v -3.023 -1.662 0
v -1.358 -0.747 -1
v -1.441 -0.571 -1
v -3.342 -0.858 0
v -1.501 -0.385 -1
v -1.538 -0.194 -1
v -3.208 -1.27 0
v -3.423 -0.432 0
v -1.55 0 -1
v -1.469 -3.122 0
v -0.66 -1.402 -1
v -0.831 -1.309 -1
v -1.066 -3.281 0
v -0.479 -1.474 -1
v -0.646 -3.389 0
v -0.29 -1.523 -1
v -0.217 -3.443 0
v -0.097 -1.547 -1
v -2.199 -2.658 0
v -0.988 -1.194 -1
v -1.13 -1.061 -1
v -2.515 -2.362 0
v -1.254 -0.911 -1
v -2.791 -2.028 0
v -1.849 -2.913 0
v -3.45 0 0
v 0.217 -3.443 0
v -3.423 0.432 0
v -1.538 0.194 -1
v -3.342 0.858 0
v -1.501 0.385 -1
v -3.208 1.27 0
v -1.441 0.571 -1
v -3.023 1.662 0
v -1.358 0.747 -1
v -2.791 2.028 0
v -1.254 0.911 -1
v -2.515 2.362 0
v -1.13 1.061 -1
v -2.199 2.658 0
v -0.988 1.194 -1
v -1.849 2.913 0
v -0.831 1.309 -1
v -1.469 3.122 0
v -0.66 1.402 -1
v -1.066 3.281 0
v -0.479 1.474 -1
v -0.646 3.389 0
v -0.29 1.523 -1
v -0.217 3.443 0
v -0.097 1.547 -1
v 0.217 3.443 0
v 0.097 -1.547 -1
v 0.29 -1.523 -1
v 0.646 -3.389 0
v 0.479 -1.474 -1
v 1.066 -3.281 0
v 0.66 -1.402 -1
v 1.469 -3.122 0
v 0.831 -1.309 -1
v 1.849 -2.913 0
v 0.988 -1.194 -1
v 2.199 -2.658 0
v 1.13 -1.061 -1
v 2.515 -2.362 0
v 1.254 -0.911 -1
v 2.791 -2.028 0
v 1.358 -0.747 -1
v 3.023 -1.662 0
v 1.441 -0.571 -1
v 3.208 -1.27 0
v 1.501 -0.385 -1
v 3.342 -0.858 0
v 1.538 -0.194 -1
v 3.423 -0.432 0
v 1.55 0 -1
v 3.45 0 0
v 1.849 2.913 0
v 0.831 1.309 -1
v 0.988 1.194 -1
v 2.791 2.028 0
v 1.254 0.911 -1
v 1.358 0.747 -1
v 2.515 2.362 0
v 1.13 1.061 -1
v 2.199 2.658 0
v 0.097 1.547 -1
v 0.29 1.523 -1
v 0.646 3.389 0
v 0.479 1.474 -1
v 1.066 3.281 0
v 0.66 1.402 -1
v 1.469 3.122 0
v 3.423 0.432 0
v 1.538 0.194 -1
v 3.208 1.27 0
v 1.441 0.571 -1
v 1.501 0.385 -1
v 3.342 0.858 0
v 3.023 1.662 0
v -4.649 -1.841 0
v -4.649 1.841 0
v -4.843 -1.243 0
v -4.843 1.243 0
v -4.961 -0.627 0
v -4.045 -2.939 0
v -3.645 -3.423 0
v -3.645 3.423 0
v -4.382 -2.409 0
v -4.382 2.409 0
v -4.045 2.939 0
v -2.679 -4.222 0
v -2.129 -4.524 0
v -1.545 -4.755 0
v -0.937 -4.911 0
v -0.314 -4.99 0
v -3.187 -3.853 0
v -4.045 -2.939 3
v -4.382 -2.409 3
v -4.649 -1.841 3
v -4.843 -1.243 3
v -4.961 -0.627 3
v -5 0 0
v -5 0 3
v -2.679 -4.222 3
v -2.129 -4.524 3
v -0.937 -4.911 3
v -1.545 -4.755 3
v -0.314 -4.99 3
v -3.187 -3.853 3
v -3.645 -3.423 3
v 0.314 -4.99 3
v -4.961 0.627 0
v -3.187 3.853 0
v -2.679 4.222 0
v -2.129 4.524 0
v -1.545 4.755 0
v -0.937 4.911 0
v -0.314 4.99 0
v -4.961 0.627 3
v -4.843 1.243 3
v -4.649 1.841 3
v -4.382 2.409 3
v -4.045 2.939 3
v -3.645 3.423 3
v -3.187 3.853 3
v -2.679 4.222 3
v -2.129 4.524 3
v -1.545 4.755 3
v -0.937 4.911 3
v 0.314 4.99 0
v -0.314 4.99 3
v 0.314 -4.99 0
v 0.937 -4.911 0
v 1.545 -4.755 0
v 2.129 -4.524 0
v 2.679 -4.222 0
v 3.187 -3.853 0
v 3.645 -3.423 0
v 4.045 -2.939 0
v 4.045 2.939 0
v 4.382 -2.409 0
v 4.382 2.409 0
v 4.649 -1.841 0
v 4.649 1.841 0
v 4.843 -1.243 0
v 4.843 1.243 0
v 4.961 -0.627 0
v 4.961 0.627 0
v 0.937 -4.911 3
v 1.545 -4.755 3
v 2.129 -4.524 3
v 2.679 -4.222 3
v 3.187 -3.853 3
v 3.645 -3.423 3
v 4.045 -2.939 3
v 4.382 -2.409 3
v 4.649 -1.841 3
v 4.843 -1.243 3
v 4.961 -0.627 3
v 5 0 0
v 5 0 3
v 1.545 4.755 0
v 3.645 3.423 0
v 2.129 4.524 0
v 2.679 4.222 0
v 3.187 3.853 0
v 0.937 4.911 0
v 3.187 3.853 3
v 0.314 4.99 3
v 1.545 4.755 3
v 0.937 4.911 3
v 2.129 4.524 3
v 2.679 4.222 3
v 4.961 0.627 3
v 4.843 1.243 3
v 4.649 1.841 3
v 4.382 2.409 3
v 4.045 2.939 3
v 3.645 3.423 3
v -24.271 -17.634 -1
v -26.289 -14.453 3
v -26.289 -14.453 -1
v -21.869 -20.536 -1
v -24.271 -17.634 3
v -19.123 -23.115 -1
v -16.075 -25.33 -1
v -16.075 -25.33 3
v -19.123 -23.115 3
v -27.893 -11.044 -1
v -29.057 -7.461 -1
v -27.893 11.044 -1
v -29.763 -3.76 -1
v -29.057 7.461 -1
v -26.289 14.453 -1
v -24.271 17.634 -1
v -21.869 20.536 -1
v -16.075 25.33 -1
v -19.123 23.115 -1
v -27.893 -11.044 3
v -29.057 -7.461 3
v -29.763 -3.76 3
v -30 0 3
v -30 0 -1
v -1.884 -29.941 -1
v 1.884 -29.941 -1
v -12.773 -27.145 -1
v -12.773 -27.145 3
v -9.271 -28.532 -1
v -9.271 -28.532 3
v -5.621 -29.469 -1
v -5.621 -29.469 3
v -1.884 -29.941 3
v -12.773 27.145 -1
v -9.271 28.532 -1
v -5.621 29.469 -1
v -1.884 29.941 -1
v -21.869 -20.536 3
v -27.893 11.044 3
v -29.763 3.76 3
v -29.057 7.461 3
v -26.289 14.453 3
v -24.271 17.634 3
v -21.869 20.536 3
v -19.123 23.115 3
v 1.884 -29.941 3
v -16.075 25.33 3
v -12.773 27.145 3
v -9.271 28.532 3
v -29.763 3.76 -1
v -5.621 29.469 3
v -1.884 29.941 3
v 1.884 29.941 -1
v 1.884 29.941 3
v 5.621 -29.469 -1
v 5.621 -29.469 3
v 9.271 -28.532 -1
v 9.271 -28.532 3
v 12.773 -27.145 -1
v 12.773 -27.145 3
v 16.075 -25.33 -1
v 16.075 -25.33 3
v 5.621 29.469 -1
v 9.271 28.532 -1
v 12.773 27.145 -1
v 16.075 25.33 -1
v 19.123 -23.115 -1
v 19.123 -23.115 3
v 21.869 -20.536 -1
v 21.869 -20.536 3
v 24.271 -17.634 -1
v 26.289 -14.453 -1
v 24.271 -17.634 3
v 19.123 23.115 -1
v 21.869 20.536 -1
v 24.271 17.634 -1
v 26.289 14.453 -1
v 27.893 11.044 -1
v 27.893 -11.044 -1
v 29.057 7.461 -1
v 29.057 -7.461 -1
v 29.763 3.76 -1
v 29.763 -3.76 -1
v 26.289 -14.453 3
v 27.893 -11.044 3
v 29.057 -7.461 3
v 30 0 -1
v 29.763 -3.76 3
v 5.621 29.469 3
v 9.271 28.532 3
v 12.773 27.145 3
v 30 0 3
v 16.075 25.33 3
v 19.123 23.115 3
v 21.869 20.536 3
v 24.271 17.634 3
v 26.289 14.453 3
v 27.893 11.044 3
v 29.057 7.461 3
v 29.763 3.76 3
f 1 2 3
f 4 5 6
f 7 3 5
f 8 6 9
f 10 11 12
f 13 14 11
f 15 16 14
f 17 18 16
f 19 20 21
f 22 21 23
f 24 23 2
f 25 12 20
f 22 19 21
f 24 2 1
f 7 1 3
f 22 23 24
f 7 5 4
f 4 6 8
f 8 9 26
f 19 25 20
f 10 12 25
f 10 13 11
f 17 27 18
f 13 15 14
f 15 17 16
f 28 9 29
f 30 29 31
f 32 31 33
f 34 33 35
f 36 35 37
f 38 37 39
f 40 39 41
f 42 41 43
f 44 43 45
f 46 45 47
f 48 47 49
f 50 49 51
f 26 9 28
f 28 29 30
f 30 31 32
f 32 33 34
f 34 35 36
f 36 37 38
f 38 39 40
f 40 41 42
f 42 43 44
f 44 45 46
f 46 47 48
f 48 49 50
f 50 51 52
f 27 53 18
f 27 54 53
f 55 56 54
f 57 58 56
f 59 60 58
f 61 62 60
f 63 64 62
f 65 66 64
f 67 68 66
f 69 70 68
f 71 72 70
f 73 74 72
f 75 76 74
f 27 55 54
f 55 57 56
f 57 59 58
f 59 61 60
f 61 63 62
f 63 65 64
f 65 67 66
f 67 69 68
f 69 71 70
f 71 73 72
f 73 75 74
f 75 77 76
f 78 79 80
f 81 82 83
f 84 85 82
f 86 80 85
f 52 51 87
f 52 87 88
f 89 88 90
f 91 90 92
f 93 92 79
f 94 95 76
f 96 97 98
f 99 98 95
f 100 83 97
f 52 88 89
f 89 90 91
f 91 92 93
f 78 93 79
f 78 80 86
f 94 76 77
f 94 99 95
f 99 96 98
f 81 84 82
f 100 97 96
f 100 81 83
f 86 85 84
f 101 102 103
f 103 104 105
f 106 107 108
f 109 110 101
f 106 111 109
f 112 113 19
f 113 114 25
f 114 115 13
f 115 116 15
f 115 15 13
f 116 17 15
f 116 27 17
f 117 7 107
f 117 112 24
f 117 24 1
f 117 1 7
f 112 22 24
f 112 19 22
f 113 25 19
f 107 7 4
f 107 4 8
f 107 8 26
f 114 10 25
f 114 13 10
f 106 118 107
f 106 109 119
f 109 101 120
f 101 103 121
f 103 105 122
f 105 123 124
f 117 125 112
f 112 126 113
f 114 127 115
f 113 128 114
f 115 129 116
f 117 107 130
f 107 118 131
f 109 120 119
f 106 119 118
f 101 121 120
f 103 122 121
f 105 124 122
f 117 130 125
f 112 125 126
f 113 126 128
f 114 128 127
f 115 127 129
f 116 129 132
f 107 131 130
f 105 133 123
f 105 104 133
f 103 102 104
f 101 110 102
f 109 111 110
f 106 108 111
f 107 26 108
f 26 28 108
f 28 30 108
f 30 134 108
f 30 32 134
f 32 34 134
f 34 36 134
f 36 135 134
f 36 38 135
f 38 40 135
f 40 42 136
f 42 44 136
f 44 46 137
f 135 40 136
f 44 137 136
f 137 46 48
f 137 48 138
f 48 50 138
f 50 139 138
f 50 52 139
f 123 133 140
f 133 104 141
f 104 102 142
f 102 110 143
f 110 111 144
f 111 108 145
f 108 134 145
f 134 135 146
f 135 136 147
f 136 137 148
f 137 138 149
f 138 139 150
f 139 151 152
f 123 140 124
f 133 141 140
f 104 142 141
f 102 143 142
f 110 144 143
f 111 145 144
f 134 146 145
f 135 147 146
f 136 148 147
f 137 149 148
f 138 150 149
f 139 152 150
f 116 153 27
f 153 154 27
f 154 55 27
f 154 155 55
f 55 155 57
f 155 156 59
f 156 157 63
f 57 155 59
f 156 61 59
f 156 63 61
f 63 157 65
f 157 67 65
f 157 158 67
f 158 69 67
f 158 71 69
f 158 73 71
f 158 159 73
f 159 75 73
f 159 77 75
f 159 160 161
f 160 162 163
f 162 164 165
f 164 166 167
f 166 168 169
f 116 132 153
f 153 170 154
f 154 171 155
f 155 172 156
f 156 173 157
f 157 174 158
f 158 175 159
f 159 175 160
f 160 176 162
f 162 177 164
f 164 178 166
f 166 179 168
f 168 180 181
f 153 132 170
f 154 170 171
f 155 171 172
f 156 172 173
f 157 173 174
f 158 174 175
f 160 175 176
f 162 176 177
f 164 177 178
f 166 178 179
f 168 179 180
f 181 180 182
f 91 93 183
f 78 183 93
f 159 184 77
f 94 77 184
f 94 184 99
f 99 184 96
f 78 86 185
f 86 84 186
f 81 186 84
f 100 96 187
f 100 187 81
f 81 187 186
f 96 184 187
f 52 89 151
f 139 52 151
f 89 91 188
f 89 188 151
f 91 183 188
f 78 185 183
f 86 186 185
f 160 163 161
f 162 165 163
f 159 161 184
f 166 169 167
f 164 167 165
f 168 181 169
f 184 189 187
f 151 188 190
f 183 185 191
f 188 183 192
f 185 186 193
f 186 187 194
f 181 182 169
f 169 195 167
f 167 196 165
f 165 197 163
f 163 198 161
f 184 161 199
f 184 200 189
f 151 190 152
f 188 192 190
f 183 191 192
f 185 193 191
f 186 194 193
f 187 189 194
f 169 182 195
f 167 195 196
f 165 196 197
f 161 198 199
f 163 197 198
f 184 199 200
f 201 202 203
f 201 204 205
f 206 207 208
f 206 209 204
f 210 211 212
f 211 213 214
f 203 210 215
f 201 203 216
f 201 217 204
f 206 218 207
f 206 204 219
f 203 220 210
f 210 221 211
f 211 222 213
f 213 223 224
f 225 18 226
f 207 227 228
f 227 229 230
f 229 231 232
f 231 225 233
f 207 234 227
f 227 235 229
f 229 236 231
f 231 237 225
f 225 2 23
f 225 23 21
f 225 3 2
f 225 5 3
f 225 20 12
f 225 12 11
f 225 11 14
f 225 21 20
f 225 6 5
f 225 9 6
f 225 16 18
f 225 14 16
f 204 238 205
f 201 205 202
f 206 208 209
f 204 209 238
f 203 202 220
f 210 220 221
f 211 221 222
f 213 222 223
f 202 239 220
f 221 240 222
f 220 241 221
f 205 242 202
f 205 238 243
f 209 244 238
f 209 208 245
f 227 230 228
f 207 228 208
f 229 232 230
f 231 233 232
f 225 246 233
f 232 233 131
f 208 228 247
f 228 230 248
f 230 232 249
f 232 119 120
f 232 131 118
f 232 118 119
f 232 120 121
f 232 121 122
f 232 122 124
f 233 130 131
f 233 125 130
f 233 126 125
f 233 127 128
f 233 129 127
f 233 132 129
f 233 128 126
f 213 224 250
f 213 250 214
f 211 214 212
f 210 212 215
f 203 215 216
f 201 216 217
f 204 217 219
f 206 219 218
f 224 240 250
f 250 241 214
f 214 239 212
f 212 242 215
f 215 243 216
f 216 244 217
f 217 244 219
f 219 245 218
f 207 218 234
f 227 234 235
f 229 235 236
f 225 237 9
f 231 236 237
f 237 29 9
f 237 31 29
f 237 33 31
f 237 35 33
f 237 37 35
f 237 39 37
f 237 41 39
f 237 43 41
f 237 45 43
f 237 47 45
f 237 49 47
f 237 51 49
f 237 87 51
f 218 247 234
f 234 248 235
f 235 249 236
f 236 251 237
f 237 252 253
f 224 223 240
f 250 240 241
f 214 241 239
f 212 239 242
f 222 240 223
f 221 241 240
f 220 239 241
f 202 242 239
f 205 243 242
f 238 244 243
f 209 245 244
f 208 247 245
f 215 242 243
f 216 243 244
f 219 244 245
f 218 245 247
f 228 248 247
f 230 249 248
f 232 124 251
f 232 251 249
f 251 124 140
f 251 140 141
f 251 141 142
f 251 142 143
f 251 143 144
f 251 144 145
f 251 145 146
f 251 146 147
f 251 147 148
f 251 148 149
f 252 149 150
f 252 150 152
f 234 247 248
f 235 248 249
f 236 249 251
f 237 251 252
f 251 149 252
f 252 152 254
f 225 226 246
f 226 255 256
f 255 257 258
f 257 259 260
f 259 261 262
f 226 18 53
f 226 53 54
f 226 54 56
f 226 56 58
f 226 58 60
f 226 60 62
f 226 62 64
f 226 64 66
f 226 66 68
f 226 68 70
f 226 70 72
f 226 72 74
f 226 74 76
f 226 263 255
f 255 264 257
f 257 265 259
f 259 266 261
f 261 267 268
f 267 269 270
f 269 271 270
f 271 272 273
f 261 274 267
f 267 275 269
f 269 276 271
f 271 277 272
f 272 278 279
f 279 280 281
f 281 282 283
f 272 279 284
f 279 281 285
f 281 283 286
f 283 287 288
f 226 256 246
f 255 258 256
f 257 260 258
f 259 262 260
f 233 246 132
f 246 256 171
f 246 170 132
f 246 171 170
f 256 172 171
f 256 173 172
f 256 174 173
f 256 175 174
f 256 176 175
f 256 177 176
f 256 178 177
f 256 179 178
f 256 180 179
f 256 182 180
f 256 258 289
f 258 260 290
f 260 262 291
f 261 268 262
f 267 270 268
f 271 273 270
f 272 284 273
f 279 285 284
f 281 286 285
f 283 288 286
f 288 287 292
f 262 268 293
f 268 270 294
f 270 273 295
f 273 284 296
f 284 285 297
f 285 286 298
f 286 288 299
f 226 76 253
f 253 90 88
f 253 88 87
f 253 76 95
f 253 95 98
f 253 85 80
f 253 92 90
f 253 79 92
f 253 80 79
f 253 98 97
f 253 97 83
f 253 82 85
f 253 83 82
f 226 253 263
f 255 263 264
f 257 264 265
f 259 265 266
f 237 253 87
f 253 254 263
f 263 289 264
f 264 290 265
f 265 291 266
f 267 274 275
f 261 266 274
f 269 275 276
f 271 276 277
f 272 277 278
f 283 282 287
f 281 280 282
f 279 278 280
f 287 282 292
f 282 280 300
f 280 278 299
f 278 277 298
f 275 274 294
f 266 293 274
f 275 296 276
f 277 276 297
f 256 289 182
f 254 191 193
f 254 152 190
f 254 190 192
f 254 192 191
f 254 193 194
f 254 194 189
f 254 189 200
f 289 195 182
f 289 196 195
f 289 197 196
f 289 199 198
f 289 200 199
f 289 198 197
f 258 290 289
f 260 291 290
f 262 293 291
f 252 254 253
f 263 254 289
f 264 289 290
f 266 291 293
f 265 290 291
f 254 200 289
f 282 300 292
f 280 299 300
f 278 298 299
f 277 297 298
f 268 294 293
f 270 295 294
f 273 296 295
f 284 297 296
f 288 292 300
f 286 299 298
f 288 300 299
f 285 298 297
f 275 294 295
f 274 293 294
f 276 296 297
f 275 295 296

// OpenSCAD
$fn = 50;

difference() {
	union() {
		translate(v = [0, 0, -1.0]) {
			cylinder(h = 4.0, r = 30.0);
		}
	}
	union() {
		translate(v = [0, 0, 0]) {
			rotate(a = [0, 0, 0]) {
				difference() {
					union() {
						translate(v = [0, 0, -4.0]) {
							cylinder(h = 4.0, r = 1.25);
						}
						translate(v = [0, 0, -1.0]) {
							cylinder(h = 1.0, r1 = 1.55, r2 = 3.45);
						}
						translate(v = [0, 0, -4.0]) {
							cylinder(h = 4.0, r = 1.55);
						}
						translate(v = [0, 0, -4.0]) {
							cylinder(h = 4.0, r = 1.25);
						}
					}
					union();
				}
			}
		}
		#cylinder(h = 3, r = 5.0);
	}
}
